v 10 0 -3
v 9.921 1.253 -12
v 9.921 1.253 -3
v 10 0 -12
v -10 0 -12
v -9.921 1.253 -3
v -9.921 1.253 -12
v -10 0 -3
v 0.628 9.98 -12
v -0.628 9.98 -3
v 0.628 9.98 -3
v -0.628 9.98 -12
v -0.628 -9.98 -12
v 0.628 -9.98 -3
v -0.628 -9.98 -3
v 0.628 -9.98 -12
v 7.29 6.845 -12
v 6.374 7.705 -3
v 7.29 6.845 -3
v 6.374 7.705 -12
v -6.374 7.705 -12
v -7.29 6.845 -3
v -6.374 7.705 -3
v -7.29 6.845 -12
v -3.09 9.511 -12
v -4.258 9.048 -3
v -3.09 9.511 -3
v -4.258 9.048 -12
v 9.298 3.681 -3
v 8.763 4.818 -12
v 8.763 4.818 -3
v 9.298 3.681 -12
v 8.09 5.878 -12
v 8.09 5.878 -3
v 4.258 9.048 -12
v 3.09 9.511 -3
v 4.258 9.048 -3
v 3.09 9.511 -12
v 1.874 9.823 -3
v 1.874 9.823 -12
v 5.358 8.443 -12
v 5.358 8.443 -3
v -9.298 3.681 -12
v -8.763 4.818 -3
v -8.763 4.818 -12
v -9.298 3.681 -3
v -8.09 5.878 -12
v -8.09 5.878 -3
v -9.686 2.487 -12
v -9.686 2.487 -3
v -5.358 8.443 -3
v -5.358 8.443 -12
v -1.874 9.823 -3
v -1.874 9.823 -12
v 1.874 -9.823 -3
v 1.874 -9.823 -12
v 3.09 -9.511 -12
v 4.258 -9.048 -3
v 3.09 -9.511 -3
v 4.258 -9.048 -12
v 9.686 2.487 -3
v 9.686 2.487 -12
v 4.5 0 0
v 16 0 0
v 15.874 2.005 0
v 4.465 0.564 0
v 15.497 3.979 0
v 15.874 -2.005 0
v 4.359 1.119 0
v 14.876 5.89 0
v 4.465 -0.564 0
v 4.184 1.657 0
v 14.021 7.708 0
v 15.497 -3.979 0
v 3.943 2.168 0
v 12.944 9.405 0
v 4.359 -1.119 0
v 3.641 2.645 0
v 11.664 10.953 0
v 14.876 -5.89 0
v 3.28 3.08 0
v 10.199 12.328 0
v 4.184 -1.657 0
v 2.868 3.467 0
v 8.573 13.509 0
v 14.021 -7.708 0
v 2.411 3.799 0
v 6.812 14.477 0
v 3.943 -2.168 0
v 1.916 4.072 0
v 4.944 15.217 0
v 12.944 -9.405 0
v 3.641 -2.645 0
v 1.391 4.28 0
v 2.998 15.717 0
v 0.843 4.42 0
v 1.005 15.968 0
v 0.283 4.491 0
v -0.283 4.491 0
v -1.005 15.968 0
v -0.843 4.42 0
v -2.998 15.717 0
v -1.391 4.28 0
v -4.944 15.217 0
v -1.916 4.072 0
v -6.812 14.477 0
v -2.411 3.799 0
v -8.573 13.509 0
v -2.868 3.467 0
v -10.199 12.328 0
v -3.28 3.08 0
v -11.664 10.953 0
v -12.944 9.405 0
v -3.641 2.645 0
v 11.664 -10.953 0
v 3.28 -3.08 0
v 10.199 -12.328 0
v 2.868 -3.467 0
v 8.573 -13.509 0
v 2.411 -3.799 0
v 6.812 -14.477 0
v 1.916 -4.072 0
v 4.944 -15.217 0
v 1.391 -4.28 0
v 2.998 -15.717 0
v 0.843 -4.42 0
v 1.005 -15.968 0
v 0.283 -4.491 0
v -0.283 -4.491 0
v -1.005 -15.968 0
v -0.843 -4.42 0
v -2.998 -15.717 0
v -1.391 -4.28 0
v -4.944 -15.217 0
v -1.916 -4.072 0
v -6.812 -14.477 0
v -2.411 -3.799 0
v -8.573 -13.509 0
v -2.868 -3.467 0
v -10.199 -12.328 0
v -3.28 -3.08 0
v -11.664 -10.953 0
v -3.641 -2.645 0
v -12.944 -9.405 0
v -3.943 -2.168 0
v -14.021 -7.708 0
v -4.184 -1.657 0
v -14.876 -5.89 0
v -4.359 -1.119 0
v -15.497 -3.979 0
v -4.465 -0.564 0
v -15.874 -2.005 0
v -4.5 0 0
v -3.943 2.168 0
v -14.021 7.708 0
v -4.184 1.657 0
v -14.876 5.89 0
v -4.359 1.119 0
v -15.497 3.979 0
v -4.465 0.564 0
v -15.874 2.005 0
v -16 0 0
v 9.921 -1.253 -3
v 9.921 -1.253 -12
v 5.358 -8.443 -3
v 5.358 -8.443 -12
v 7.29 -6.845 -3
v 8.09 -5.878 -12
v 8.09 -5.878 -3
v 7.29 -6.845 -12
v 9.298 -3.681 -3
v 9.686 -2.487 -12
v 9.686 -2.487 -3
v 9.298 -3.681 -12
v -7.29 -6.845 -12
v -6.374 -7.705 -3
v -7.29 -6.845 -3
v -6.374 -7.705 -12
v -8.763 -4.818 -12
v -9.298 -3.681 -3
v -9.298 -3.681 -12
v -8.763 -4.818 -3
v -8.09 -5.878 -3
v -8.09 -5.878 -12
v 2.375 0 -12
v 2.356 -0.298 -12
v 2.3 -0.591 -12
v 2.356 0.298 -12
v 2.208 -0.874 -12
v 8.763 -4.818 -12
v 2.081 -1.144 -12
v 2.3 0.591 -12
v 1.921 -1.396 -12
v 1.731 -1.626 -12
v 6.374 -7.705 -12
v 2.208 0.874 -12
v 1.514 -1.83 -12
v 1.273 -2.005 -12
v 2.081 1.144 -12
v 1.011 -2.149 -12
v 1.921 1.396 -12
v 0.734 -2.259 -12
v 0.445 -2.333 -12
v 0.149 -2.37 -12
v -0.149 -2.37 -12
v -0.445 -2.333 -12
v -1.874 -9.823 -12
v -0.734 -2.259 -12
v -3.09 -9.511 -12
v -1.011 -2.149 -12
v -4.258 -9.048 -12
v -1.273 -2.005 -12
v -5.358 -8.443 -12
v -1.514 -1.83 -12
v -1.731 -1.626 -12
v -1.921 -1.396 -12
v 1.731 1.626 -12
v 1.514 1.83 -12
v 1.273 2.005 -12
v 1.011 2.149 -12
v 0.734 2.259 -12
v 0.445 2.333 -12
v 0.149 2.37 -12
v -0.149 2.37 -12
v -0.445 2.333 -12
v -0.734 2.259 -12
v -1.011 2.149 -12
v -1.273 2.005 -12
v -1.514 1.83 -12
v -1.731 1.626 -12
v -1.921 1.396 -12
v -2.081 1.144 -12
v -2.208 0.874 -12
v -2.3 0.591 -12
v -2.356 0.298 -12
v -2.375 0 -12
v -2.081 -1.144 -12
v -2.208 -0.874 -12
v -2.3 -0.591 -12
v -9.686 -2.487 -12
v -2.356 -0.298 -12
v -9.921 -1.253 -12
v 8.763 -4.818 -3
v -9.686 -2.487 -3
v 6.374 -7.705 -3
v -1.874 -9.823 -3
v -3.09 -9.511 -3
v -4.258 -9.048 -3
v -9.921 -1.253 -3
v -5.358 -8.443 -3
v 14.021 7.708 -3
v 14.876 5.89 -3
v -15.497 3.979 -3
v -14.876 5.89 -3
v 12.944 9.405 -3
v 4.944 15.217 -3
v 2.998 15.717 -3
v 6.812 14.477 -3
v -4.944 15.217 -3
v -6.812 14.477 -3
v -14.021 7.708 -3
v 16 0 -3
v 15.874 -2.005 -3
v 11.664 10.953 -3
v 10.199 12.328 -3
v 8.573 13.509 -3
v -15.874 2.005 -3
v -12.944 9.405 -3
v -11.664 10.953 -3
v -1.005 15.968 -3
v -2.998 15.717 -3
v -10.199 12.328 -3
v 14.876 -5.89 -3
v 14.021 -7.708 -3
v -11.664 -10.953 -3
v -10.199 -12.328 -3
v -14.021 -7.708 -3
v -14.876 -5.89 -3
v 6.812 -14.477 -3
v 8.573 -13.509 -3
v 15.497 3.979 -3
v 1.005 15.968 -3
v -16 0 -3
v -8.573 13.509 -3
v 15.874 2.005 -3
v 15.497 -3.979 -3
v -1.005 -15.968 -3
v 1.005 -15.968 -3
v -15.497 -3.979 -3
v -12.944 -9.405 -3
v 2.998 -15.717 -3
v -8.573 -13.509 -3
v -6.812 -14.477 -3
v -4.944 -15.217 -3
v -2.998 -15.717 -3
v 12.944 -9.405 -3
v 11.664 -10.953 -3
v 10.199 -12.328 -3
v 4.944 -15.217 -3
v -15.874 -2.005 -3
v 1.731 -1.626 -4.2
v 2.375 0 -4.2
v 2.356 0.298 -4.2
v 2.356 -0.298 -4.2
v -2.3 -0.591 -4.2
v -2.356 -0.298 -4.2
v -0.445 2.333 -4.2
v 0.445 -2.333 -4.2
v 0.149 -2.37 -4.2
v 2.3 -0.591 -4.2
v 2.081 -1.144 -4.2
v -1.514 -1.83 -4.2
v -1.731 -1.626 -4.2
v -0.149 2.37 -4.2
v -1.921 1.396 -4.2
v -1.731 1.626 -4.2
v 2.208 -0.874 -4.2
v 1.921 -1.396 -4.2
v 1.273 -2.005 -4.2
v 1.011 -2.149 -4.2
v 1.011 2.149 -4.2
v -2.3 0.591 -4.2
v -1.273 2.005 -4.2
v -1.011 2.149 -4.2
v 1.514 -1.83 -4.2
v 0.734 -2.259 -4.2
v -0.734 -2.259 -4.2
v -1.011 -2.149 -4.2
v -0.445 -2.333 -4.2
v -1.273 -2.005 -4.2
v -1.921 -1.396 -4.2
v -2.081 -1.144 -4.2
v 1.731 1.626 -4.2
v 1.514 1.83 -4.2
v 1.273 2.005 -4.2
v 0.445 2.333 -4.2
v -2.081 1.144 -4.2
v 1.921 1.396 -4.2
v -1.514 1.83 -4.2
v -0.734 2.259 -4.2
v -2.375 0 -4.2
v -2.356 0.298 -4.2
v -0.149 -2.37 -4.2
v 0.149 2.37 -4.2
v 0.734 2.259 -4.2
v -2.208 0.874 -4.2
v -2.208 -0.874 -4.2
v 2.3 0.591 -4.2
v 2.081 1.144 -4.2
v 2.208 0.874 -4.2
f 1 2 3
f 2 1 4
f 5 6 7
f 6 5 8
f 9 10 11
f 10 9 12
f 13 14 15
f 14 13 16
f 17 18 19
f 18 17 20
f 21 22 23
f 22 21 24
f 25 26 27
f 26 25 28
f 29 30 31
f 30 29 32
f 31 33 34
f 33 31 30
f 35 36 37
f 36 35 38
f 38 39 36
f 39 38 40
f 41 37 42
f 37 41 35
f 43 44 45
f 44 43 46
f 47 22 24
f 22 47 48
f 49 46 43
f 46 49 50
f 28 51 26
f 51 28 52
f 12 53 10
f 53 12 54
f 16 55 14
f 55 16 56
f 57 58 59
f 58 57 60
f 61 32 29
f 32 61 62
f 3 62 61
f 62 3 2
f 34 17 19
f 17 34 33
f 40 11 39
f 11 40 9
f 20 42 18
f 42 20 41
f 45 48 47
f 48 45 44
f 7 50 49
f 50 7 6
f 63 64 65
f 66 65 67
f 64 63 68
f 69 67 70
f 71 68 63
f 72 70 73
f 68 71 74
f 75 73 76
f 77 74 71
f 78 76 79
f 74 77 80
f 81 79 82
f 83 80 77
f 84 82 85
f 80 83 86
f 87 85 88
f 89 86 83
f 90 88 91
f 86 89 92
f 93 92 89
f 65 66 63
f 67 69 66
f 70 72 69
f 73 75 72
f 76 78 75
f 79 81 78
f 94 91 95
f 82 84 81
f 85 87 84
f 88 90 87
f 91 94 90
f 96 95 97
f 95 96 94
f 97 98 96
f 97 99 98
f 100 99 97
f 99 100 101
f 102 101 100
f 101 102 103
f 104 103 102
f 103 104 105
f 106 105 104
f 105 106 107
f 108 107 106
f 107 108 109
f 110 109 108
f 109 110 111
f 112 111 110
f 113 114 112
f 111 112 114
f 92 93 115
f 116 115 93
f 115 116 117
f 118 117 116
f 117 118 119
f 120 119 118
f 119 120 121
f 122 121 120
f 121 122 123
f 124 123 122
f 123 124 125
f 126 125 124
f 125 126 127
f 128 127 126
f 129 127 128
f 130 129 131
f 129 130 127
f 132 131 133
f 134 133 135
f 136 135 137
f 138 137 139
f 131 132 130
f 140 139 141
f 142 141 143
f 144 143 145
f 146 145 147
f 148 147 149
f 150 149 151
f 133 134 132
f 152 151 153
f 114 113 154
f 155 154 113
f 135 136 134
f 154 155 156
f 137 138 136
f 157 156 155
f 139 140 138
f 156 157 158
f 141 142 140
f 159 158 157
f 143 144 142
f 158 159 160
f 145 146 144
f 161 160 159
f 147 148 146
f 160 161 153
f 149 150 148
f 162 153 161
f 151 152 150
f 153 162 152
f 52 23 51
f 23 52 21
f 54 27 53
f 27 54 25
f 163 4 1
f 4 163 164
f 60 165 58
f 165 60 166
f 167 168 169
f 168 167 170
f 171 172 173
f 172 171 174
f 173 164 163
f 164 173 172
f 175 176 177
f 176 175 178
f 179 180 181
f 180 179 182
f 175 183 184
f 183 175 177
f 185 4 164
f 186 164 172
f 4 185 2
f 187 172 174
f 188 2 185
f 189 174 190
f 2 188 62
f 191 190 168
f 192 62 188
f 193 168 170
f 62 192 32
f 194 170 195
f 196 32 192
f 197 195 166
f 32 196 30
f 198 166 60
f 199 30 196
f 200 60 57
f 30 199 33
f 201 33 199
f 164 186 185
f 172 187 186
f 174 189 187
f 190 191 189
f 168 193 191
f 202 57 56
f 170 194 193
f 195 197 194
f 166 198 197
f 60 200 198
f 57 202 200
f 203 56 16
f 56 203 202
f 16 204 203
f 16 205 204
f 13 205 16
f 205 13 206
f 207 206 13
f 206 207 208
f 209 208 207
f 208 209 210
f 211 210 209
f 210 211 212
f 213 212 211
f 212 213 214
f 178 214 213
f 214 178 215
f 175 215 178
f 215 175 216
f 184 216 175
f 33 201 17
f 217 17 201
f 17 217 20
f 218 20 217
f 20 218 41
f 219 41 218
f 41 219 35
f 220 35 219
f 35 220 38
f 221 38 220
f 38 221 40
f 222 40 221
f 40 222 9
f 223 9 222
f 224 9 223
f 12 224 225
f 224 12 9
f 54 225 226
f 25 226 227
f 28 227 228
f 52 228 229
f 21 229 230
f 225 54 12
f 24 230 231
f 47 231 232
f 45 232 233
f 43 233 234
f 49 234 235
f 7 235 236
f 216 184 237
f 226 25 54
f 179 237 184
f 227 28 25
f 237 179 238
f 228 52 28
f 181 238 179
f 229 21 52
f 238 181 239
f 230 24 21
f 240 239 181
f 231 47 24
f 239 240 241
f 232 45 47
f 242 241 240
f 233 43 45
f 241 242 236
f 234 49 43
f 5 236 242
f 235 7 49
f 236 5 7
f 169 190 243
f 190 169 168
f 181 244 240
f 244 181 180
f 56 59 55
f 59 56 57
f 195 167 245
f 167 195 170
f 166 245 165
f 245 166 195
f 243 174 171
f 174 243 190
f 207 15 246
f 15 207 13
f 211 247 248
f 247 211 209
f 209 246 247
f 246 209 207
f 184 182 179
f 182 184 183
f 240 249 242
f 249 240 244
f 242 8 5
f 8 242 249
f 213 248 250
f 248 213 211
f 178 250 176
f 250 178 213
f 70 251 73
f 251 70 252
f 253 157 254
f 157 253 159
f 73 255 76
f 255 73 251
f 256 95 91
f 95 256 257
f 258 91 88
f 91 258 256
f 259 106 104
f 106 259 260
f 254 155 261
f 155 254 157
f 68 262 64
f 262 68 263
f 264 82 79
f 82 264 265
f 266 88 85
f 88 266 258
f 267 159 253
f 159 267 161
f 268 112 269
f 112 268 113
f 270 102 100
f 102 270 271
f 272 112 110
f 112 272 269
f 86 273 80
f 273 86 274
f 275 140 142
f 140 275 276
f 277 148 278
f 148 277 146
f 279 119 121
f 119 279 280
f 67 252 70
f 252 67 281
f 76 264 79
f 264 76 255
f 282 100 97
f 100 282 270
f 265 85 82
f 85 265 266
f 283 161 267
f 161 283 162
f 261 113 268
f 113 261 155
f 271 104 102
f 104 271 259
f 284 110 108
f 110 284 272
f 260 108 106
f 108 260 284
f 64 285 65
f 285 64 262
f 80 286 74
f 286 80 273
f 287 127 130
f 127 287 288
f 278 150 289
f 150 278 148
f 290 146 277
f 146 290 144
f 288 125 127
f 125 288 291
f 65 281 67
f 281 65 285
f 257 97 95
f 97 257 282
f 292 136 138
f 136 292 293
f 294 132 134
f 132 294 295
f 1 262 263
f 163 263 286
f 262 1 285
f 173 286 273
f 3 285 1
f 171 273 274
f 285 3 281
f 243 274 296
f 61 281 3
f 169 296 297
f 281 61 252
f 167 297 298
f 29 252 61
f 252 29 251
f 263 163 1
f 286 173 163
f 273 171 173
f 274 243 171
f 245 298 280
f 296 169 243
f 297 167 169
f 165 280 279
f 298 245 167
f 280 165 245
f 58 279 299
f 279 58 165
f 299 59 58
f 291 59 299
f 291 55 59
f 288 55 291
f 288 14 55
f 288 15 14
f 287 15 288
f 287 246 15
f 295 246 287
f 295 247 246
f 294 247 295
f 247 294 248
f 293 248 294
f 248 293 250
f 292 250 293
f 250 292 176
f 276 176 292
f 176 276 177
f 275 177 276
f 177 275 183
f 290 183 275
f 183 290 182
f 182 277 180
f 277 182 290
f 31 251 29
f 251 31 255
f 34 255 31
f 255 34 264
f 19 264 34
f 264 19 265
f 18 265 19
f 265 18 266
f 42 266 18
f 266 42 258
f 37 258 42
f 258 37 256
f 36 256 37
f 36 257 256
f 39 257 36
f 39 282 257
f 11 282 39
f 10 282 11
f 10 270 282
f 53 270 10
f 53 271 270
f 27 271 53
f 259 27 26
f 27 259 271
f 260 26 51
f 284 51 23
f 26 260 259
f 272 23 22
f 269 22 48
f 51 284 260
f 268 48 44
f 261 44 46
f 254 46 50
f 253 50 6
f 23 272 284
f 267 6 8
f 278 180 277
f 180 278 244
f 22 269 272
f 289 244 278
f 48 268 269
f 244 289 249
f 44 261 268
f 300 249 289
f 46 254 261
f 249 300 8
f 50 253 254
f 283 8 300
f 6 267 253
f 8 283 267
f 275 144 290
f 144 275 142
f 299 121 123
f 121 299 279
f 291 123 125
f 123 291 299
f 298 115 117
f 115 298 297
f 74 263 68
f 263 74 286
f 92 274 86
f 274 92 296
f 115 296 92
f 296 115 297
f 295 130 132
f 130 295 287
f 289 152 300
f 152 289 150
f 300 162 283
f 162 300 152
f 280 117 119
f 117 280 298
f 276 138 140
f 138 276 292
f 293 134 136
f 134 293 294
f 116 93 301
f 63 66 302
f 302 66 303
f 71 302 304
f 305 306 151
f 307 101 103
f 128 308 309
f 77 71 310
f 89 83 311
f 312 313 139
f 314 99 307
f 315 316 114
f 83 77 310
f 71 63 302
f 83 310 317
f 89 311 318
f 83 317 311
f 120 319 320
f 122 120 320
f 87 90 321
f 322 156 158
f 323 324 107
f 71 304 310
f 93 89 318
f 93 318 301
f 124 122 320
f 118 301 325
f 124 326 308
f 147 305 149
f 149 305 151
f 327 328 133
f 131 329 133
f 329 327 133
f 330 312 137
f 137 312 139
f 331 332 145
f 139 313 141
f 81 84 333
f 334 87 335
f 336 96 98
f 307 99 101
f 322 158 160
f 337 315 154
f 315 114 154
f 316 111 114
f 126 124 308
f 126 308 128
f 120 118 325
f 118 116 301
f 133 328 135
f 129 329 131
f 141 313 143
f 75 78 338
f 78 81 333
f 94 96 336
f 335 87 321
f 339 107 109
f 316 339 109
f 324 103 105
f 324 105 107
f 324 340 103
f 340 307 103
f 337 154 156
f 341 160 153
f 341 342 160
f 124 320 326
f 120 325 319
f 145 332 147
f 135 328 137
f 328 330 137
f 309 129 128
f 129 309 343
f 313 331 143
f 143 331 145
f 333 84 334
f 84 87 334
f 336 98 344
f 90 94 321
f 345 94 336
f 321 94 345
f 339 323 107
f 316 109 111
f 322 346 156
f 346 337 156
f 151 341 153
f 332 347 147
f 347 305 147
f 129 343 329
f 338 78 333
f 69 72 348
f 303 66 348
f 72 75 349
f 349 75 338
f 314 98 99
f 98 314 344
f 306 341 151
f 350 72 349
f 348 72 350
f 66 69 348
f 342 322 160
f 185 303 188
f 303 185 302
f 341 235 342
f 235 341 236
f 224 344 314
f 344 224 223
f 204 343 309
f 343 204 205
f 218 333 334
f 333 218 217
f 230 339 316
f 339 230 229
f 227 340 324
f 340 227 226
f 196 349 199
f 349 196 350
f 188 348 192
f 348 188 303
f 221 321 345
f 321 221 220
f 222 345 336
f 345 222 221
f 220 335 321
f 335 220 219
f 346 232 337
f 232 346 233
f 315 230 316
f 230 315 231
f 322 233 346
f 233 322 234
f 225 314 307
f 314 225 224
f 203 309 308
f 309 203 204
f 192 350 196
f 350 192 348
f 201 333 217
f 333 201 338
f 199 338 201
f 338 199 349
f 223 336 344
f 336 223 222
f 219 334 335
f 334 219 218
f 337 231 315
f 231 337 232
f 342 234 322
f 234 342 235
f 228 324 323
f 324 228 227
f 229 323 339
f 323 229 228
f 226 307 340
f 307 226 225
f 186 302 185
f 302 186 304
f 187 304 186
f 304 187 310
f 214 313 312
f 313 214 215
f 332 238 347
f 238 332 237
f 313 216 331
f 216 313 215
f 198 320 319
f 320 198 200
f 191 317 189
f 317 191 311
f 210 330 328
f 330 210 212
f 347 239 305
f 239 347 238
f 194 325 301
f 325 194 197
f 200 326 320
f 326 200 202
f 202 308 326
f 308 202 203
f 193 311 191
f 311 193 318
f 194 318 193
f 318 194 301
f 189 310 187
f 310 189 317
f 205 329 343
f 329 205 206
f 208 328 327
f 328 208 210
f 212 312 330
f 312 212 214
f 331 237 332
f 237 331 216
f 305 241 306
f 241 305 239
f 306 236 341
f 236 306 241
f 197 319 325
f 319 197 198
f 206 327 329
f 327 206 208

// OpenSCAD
$fn = 50;


difference() {
	union() {
		translate(v = [0, 0, -12.0000000000]) {
			cylinder(h = 12, r = 10.0000000000);
		}
		translate(v = [0, 0, -3.0000000000]) {
			cylinder(h = 3, r = 16.0000000000);
		}
	}
	union() {
		translate(v = [0, 0, 0]) {
			rotate(a = [0, 0, 0]) {
				difference() {
					union() {
						#translate(v = [0, 0, -12.0000000000]) {
							cylinder(h = 12, r = 2.2500000000);
						}
						#translate(v = [0, 0, -4.2000000000]) {
							cylinder(h = 4.2000000000, r1 = 2.3750000000, r2 = 4.5000000000);
						}
						#translate(v = [0, 0, -12.0000000000]) {
							cylinder(h = 12, r = 2.3750000000);
						}
						#translate(v = [0, 0, -12.0000000000]) {
							cylinder(h = 12, r = 2.2500000000);
						}
					}
					union();
				}
			}
		}
	}
}
